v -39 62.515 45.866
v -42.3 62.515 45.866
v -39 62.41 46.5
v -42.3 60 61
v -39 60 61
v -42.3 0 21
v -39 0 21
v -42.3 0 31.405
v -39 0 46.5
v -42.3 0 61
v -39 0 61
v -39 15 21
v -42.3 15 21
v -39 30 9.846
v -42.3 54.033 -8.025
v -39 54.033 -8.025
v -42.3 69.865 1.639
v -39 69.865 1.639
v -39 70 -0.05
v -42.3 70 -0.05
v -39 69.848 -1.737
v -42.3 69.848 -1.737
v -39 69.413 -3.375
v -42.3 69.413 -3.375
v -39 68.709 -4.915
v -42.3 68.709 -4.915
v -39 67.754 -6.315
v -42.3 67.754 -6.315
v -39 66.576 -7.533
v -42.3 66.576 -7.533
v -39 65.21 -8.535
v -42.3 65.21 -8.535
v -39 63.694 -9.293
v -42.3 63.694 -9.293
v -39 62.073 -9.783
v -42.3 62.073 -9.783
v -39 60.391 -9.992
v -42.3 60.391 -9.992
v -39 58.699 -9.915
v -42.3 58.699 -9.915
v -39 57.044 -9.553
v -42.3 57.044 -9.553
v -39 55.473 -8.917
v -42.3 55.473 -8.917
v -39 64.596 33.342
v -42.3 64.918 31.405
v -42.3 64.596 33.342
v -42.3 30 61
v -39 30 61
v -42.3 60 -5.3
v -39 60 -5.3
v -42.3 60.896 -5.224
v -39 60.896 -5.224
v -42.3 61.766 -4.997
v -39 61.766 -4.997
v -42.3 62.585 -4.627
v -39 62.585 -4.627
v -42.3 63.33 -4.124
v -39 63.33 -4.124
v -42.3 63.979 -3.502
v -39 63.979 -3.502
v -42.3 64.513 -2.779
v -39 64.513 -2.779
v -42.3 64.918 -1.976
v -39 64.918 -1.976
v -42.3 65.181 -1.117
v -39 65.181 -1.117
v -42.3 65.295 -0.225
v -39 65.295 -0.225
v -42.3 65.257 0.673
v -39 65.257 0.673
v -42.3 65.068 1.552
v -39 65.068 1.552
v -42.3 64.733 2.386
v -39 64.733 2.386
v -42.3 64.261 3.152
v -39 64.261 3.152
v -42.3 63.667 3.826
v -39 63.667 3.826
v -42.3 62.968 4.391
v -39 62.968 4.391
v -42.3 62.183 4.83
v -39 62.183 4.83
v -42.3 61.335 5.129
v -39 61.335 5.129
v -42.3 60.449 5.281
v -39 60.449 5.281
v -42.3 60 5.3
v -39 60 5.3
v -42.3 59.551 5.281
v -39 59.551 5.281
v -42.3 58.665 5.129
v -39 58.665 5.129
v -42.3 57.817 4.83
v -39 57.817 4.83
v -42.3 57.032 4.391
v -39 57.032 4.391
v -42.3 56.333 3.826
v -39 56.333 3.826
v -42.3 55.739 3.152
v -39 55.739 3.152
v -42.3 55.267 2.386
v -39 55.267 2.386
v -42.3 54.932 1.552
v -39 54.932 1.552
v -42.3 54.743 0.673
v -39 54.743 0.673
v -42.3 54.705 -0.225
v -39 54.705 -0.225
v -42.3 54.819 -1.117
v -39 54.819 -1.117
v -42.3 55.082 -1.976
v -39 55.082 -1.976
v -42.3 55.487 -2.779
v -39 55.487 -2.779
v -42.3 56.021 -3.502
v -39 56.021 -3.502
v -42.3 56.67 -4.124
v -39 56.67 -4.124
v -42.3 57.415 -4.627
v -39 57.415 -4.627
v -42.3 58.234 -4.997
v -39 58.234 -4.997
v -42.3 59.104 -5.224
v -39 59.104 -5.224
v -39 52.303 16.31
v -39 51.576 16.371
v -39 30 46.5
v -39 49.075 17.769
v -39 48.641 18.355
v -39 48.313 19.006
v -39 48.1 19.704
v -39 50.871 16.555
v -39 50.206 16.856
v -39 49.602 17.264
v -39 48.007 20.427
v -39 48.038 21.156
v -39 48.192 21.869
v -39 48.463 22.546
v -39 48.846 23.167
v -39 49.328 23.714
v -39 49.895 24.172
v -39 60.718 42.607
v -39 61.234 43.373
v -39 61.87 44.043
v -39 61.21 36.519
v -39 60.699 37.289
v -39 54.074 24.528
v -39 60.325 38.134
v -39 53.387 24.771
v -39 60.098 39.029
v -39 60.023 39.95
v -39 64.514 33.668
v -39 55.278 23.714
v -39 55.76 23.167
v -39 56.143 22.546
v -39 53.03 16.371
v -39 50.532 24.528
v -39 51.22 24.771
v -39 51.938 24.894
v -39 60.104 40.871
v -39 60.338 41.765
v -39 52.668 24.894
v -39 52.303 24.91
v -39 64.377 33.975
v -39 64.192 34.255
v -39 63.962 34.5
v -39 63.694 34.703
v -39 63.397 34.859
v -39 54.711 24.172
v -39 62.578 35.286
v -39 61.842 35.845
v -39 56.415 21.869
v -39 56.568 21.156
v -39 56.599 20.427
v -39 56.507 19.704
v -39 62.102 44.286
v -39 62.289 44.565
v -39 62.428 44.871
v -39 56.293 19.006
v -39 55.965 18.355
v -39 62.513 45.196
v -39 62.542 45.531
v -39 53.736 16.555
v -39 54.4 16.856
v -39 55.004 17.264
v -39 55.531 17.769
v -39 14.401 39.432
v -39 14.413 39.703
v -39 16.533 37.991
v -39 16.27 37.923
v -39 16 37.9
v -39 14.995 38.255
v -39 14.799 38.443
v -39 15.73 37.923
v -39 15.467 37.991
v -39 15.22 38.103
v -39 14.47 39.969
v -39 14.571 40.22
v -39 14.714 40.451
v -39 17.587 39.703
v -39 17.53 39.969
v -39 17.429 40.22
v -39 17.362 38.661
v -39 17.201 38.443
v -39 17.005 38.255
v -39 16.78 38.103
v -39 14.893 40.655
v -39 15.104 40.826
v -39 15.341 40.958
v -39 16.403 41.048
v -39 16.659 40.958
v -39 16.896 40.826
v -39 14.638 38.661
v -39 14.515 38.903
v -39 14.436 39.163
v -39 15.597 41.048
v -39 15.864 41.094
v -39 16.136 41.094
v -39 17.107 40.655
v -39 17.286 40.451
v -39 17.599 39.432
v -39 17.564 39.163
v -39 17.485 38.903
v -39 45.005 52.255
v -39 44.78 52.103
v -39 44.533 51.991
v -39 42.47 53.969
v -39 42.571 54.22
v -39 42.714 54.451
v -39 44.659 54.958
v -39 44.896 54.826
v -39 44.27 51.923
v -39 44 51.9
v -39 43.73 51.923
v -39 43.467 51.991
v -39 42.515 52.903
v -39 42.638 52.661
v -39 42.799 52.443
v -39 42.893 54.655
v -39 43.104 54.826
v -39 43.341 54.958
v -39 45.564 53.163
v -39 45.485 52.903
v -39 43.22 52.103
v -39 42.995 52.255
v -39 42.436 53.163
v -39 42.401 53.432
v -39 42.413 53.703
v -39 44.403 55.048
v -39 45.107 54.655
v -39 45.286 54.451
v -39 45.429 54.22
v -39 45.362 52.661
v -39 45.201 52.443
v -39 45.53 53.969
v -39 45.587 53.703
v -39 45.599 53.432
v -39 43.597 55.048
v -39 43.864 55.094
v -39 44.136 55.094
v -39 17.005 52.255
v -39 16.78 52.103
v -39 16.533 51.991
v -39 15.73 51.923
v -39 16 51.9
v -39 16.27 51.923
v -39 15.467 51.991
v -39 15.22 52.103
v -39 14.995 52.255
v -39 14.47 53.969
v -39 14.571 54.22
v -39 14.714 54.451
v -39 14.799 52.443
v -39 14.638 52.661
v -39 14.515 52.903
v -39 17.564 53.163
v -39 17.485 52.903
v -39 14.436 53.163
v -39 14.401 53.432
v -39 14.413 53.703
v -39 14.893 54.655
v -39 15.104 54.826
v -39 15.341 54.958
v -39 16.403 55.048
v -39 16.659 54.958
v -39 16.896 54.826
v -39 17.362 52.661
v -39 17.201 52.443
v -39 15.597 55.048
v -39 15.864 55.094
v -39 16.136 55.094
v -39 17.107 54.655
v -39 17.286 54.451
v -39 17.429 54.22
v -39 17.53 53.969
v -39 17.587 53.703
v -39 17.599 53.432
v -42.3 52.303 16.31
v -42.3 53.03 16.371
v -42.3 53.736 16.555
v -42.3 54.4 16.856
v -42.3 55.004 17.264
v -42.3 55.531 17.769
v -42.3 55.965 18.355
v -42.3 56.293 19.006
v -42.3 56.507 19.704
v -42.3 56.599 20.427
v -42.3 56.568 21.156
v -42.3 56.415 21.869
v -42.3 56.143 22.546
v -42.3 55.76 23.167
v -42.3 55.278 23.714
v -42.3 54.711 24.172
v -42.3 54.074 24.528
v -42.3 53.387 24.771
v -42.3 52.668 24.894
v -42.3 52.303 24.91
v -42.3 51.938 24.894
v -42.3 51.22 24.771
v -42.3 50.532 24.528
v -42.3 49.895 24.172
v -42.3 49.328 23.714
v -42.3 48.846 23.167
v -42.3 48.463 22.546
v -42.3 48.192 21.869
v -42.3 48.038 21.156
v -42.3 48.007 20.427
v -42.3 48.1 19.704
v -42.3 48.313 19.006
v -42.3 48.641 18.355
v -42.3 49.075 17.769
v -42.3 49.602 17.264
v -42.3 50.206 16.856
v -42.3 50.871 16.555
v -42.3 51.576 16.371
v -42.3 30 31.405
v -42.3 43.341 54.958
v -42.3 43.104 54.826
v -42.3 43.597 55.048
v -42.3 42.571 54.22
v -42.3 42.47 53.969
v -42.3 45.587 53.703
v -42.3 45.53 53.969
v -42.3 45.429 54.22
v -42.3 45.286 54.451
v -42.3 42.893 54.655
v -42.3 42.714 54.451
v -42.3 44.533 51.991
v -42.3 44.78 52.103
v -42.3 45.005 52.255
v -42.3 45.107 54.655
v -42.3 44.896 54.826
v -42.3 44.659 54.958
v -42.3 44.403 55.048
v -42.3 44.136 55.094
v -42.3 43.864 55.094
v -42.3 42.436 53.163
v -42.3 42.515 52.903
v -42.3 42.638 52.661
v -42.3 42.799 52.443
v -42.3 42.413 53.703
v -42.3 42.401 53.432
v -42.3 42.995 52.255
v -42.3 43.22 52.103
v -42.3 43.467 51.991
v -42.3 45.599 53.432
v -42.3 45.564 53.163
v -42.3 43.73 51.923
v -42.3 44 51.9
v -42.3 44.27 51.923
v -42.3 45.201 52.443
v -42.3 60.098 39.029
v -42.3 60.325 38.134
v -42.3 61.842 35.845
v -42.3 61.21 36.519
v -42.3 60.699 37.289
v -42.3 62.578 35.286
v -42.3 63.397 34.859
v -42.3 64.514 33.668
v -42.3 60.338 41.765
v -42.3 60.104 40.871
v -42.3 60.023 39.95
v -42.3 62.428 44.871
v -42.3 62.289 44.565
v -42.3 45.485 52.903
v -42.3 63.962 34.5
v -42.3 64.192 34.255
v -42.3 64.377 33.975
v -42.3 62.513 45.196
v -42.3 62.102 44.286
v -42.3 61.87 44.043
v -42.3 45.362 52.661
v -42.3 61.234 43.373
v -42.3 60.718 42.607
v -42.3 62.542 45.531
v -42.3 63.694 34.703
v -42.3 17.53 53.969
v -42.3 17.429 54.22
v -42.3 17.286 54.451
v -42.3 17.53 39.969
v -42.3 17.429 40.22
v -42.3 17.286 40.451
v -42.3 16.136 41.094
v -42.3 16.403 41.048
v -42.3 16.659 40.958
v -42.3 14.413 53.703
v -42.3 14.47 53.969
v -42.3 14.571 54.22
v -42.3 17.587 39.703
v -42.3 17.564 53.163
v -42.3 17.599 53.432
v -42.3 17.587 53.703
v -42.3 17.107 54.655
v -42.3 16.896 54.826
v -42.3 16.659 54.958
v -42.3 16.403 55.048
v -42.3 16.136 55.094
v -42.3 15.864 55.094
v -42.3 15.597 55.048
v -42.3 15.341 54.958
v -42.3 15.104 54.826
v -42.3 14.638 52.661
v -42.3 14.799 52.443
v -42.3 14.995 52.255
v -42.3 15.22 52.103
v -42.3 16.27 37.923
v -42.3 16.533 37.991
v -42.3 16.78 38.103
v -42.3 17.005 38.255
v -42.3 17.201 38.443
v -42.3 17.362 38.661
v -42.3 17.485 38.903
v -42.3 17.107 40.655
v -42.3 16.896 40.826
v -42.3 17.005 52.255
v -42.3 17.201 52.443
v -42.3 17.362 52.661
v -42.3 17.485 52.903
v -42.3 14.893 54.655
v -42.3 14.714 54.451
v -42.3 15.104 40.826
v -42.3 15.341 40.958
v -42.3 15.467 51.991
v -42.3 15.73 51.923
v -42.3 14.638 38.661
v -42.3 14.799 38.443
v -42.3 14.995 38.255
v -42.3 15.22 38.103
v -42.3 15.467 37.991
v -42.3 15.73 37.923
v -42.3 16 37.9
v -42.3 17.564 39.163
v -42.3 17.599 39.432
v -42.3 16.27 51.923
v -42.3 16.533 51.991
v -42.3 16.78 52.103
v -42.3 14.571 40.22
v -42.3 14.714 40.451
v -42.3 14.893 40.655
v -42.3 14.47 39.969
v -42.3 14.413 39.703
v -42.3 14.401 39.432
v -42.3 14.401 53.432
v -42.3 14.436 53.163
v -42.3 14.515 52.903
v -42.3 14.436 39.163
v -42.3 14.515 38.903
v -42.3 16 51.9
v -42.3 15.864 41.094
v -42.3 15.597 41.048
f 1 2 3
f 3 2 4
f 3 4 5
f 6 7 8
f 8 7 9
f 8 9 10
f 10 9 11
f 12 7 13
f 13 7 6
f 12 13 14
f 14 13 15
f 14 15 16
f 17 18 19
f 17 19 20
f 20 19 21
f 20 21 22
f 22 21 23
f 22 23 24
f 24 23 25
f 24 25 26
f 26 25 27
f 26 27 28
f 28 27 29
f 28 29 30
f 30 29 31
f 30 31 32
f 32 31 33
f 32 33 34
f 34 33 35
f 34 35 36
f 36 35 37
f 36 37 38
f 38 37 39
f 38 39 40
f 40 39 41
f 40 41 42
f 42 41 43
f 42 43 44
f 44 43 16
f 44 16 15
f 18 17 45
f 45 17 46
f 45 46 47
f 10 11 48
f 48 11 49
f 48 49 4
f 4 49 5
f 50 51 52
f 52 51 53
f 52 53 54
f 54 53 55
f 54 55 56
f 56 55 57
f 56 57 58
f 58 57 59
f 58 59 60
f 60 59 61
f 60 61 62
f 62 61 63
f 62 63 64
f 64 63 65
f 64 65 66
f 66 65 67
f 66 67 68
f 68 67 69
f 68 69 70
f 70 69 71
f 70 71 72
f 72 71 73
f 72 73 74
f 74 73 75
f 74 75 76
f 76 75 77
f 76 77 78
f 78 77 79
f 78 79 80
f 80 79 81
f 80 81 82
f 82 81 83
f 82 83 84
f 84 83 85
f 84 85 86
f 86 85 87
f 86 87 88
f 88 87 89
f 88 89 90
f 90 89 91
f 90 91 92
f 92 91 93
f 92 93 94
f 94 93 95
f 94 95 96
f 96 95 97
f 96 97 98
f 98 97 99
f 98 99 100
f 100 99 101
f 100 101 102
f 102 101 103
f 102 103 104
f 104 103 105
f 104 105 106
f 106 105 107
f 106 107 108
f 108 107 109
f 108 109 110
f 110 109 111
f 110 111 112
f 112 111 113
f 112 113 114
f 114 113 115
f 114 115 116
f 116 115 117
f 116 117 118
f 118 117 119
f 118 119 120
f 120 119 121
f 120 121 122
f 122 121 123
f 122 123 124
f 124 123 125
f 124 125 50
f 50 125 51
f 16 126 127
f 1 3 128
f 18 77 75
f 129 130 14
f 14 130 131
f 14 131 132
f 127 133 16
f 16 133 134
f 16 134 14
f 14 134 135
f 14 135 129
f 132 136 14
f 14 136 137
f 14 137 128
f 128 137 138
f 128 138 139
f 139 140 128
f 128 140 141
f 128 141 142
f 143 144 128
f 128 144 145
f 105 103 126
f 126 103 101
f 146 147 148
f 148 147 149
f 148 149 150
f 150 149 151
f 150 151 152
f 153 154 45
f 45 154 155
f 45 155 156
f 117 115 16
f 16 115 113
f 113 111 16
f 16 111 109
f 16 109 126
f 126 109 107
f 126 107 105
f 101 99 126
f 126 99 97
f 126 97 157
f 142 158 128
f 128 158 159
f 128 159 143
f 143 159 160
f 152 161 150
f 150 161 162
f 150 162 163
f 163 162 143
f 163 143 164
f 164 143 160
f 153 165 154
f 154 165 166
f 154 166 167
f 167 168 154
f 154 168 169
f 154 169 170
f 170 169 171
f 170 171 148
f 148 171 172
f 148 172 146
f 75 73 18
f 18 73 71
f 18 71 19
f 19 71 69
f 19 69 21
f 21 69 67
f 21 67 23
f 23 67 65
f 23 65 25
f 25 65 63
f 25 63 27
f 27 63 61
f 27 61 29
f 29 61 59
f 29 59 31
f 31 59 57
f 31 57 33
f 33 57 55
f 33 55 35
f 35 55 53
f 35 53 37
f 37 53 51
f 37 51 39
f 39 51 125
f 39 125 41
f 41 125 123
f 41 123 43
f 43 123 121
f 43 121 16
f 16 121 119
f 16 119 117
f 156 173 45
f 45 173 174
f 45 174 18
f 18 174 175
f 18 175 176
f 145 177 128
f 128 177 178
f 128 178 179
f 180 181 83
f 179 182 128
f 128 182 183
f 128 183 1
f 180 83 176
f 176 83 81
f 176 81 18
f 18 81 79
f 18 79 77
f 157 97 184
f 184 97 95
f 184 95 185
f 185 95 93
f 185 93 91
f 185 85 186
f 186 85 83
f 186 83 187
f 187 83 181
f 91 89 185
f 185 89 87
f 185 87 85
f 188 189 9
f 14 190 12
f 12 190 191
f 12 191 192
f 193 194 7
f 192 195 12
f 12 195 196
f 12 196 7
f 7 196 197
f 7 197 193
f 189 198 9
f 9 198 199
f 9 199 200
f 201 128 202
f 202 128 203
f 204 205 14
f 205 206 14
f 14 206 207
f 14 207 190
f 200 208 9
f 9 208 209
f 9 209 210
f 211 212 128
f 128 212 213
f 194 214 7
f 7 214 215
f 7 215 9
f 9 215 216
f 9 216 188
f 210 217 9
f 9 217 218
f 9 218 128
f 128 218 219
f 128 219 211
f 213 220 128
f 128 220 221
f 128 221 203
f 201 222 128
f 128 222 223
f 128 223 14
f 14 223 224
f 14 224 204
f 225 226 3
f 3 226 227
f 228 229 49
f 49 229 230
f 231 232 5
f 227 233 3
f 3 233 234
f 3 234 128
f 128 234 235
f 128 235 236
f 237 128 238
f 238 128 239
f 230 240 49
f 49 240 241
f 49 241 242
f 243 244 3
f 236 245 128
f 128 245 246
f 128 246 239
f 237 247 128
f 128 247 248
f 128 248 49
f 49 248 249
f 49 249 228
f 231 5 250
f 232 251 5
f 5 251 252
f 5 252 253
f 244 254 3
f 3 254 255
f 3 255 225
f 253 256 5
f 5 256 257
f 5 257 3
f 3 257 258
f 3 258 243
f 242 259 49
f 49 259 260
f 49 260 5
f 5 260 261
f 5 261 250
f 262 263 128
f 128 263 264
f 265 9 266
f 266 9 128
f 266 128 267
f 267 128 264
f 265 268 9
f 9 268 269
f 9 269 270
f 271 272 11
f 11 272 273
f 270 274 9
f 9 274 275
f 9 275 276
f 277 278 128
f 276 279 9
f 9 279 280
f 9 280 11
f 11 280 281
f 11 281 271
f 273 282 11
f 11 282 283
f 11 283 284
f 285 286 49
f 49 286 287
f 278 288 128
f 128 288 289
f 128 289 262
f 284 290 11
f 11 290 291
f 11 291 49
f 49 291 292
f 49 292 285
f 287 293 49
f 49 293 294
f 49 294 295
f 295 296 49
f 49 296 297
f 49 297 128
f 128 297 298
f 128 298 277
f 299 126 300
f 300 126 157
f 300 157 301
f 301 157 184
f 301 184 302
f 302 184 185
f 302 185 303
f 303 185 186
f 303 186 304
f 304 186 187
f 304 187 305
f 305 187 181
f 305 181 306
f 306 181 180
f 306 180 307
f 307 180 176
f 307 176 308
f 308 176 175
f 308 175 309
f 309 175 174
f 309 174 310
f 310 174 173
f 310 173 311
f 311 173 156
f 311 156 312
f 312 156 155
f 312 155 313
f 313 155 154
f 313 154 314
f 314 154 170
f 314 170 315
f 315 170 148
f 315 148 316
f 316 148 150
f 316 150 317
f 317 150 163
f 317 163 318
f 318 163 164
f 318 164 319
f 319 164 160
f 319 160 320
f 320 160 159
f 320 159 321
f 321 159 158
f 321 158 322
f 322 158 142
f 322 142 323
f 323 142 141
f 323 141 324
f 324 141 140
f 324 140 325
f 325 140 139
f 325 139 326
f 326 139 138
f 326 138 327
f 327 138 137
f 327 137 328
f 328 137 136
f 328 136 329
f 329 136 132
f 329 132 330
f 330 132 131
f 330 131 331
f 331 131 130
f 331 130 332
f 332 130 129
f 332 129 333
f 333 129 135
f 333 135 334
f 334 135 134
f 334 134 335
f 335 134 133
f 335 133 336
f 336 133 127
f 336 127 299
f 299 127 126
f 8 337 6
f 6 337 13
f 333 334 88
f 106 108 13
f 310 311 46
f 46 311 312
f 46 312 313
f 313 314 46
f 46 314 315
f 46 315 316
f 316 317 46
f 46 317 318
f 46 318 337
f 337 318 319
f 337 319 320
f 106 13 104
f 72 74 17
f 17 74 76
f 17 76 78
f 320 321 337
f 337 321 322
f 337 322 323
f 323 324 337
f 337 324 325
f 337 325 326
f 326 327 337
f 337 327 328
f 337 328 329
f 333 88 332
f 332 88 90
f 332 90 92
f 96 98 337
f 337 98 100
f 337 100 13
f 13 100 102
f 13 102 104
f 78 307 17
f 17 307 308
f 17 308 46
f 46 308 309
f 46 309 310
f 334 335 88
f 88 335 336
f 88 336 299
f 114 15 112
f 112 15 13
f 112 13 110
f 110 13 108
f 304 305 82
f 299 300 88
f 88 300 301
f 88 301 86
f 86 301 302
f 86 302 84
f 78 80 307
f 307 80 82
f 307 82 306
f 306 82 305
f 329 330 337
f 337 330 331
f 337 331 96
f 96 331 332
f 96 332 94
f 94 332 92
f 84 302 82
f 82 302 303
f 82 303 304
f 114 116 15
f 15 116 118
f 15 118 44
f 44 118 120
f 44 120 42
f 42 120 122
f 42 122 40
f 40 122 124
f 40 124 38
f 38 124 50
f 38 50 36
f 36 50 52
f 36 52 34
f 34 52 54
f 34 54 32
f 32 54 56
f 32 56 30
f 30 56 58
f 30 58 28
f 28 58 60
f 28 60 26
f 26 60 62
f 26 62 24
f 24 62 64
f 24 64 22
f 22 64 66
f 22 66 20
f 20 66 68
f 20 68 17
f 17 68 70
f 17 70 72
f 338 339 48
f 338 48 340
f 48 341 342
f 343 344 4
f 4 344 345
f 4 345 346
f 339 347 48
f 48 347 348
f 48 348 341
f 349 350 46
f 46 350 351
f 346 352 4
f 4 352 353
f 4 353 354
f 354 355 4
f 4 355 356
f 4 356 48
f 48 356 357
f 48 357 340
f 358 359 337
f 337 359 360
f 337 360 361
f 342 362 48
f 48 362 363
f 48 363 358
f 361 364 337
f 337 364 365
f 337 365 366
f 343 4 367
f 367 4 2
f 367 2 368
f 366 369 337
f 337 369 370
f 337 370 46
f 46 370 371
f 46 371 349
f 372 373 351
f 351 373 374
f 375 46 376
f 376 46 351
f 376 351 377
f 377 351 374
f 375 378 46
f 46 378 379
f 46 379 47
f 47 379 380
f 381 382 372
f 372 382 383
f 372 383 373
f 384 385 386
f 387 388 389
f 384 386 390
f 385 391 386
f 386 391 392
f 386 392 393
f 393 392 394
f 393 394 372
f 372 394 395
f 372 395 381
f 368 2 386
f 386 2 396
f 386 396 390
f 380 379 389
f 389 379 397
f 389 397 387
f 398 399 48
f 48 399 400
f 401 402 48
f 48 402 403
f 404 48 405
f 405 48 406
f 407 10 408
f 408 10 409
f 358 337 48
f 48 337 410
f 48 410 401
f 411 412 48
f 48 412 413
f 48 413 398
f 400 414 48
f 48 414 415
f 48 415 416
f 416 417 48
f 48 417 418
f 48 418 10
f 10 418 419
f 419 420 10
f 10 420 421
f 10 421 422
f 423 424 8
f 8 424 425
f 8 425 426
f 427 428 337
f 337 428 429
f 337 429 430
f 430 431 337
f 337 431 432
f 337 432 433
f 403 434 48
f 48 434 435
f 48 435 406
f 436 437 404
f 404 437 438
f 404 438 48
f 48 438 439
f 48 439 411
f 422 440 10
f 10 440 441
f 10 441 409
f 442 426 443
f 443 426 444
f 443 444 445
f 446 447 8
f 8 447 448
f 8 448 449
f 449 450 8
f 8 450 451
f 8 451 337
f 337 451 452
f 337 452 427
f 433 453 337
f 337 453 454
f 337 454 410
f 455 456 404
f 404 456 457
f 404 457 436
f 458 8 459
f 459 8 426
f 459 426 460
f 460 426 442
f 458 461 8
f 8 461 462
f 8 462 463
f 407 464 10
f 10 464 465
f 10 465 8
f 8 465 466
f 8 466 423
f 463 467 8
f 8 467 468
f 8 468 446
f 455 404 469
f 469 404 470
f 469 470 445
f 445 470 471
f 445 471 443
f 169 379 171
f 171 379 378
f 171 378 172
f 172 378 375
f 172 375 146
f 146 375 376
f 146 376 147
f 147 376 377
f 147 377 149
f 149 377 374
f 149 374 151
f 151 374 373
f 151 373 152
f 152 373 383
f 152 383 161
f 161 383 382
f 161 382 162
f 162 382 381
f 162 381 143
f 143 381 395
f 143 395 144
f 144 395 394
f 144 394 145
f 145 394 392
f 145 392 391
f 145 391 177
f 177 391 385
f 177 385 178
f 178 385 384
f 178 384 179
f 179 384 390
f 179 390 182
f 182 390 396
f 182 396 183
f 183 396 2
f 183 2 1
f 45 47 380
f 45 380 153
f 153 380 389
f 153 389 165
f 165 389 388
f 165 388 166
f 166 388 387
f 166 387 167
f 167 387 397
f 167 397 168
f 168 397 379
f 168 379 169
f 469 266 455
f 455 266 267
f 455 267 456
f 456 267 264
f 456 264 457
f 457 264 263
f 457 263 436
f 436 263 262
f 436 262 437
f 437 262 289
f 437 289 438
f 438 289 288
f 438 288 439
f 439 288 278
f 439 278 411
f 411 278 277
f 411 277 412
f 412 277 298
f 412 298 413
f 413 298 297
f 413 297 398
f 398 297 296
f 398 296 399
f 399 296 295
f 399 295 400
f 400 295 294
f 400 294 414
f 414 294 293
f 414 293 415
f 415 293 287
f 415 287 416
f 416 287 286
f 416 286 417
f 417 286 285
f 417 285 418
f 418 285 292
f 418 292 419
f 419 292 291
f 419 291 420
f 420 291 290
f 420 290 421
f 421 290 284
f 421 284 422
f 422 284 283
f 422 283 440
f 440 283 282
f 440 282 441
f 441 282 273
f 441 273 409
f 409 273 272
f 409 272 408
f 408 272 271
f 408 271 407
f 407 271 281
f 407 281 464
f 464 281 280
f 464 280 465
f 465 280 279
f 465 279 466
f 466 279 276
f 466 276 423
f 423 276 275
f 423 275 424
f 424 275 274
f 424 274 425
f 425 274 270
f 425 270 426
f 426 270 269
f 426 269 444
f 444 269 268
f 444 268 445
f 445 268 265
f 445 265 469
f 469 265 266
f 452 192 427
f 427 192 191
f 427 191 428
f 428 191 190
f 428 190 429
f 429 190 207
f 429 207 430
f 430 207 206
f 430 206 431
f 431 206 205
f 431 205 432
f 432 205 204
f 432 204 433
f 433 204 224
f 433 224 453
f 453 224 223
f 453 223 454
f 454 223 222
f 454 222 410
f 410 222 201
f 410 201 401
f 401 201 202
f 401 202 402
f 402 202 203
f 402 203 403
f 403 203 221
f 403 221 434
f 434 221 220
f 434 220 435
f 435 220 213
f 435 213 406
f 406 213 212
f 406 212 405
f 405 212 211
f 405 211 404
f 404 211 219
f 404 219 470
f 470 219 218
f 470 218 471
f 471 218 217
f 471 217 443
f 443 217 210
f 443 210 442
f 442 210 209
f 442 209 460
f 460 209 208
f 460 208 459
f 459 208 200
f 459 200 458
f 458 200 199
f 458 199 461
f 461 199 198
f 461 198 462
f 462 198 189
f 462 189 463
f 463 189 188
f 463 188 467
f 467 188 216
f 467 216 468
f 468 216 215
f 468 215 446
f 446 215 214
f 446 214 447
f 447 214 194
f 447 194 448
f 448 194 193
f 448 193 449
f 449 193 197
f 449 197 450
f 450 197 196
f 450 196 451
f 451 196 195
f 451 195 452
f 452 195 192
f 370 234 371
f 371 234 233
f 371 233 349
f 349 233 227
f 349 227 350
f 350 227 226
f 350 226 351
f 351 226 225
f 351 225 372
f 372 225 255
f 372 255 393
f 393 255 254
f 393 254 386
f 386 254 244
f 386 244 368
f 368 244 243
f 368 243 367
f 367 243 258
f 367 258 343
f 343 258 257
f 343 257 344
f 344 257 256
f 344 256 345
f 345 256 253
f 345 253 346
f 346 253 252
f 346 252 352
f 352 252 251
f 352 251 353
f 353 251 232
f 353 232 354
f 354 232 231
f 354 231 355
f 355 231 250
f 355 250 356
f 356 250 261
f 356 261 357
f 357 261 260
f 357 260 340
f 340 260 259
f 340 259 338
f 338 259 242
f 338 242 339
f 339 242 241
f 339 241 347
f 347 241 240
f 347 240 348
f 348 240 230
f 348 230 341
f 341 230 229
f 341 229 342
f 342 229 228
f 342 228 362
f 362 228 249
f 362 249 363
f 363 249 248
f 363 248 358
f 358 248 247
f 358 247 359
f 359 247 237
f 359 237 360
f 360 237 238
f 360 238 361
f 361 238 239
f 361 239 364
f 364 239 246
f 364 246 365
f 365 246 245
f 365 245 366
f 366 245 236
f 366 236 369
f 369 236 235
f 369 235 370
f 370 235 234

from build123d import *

# Parameters (mm, degrees)
SKETCH1_R           = 4.3
SKETCH1_R_2         = 5.3
BOSS_EXTRUDE1_DEPTH = 3.3
SKETCH2_R           = 5.5
CUT_EXTRUDE1_DEPTH  = 93.907965213
FILLET1_R           = 2
SKETCH3_R           = 1.6
CUT_EXTRUDE2_DEPTH  = 93.907965213


with BuildPart() as part:
    # Sketch1 → Boss-Extrude1 (new body)
    with BuildSketch(Plane.ZY.offset(39)):
        with BuildLine():
            Line((61, 0), (21, 0))
            Line((21, 0), (21, 15))
            Line((21, 15), (-8.024613022, 54.032958367))
            ThreePointArc((-8.024613022, 54.032958367), (-8.535456817, 65.210180123), (1.639344262, 69.864712383))
            Line((1.639344262, 69.864712383), (61, 60))
            Line((61, 60), (61, 0))
        make_face()
        with Locations((20.609637027, 52.303061543)):
            Circle(SKETCH1_R, mode=Mode.SUBTRACT)
        with Locations((0, 60)):
            Circle(SKETCH1_R_2, mode=Mode.SUBTRACT)
    extrude(amount=BOSS_EXTRUDE1_DEPTH)

    # Sketch2 → Cut-Extrude1 (cut, through all)
    with BuildSketch(Plane.ZY.offset(42.3)):
        with Locations((39.931128277, 65.523132673)):
            Circle(SKETCH2_R)
    extrude(amount=-CUT_EXTRUDE1_DEPTH, mode=Mode.SUBTRACT)

    # Fillet1
    fillet1_edges = [part.edges().sort_by_distance(p)[0] for p in [
        (-40.65, 62.71535211, 44.660437774),
        (-40.65, 64.395883156, 34.547884968),
    ]]
    fillet(fillet1_edges, radius=FILLET1_R)

    # Sketch3 → Cut-Extrude2 (cut, through all)
    with BuildSketch(Plane(origin=(-39, 0, 0), x_dir=(0, 0, -1), z_dir=(1, 0, 0))):
        with Locations((-53.5, 44)):
            Circle(SKETCH3_R)
        with Locations((-39.5, 16)):
            Circle(SKETCH3_R)
        with Locations((-53.5, 16)):
            Circle(SKETCH3_R)
    extrude(amount=-CUT_EXTRUDE2_DEPTH, mode=Mode.SUBTRACT)


solid = part.part
